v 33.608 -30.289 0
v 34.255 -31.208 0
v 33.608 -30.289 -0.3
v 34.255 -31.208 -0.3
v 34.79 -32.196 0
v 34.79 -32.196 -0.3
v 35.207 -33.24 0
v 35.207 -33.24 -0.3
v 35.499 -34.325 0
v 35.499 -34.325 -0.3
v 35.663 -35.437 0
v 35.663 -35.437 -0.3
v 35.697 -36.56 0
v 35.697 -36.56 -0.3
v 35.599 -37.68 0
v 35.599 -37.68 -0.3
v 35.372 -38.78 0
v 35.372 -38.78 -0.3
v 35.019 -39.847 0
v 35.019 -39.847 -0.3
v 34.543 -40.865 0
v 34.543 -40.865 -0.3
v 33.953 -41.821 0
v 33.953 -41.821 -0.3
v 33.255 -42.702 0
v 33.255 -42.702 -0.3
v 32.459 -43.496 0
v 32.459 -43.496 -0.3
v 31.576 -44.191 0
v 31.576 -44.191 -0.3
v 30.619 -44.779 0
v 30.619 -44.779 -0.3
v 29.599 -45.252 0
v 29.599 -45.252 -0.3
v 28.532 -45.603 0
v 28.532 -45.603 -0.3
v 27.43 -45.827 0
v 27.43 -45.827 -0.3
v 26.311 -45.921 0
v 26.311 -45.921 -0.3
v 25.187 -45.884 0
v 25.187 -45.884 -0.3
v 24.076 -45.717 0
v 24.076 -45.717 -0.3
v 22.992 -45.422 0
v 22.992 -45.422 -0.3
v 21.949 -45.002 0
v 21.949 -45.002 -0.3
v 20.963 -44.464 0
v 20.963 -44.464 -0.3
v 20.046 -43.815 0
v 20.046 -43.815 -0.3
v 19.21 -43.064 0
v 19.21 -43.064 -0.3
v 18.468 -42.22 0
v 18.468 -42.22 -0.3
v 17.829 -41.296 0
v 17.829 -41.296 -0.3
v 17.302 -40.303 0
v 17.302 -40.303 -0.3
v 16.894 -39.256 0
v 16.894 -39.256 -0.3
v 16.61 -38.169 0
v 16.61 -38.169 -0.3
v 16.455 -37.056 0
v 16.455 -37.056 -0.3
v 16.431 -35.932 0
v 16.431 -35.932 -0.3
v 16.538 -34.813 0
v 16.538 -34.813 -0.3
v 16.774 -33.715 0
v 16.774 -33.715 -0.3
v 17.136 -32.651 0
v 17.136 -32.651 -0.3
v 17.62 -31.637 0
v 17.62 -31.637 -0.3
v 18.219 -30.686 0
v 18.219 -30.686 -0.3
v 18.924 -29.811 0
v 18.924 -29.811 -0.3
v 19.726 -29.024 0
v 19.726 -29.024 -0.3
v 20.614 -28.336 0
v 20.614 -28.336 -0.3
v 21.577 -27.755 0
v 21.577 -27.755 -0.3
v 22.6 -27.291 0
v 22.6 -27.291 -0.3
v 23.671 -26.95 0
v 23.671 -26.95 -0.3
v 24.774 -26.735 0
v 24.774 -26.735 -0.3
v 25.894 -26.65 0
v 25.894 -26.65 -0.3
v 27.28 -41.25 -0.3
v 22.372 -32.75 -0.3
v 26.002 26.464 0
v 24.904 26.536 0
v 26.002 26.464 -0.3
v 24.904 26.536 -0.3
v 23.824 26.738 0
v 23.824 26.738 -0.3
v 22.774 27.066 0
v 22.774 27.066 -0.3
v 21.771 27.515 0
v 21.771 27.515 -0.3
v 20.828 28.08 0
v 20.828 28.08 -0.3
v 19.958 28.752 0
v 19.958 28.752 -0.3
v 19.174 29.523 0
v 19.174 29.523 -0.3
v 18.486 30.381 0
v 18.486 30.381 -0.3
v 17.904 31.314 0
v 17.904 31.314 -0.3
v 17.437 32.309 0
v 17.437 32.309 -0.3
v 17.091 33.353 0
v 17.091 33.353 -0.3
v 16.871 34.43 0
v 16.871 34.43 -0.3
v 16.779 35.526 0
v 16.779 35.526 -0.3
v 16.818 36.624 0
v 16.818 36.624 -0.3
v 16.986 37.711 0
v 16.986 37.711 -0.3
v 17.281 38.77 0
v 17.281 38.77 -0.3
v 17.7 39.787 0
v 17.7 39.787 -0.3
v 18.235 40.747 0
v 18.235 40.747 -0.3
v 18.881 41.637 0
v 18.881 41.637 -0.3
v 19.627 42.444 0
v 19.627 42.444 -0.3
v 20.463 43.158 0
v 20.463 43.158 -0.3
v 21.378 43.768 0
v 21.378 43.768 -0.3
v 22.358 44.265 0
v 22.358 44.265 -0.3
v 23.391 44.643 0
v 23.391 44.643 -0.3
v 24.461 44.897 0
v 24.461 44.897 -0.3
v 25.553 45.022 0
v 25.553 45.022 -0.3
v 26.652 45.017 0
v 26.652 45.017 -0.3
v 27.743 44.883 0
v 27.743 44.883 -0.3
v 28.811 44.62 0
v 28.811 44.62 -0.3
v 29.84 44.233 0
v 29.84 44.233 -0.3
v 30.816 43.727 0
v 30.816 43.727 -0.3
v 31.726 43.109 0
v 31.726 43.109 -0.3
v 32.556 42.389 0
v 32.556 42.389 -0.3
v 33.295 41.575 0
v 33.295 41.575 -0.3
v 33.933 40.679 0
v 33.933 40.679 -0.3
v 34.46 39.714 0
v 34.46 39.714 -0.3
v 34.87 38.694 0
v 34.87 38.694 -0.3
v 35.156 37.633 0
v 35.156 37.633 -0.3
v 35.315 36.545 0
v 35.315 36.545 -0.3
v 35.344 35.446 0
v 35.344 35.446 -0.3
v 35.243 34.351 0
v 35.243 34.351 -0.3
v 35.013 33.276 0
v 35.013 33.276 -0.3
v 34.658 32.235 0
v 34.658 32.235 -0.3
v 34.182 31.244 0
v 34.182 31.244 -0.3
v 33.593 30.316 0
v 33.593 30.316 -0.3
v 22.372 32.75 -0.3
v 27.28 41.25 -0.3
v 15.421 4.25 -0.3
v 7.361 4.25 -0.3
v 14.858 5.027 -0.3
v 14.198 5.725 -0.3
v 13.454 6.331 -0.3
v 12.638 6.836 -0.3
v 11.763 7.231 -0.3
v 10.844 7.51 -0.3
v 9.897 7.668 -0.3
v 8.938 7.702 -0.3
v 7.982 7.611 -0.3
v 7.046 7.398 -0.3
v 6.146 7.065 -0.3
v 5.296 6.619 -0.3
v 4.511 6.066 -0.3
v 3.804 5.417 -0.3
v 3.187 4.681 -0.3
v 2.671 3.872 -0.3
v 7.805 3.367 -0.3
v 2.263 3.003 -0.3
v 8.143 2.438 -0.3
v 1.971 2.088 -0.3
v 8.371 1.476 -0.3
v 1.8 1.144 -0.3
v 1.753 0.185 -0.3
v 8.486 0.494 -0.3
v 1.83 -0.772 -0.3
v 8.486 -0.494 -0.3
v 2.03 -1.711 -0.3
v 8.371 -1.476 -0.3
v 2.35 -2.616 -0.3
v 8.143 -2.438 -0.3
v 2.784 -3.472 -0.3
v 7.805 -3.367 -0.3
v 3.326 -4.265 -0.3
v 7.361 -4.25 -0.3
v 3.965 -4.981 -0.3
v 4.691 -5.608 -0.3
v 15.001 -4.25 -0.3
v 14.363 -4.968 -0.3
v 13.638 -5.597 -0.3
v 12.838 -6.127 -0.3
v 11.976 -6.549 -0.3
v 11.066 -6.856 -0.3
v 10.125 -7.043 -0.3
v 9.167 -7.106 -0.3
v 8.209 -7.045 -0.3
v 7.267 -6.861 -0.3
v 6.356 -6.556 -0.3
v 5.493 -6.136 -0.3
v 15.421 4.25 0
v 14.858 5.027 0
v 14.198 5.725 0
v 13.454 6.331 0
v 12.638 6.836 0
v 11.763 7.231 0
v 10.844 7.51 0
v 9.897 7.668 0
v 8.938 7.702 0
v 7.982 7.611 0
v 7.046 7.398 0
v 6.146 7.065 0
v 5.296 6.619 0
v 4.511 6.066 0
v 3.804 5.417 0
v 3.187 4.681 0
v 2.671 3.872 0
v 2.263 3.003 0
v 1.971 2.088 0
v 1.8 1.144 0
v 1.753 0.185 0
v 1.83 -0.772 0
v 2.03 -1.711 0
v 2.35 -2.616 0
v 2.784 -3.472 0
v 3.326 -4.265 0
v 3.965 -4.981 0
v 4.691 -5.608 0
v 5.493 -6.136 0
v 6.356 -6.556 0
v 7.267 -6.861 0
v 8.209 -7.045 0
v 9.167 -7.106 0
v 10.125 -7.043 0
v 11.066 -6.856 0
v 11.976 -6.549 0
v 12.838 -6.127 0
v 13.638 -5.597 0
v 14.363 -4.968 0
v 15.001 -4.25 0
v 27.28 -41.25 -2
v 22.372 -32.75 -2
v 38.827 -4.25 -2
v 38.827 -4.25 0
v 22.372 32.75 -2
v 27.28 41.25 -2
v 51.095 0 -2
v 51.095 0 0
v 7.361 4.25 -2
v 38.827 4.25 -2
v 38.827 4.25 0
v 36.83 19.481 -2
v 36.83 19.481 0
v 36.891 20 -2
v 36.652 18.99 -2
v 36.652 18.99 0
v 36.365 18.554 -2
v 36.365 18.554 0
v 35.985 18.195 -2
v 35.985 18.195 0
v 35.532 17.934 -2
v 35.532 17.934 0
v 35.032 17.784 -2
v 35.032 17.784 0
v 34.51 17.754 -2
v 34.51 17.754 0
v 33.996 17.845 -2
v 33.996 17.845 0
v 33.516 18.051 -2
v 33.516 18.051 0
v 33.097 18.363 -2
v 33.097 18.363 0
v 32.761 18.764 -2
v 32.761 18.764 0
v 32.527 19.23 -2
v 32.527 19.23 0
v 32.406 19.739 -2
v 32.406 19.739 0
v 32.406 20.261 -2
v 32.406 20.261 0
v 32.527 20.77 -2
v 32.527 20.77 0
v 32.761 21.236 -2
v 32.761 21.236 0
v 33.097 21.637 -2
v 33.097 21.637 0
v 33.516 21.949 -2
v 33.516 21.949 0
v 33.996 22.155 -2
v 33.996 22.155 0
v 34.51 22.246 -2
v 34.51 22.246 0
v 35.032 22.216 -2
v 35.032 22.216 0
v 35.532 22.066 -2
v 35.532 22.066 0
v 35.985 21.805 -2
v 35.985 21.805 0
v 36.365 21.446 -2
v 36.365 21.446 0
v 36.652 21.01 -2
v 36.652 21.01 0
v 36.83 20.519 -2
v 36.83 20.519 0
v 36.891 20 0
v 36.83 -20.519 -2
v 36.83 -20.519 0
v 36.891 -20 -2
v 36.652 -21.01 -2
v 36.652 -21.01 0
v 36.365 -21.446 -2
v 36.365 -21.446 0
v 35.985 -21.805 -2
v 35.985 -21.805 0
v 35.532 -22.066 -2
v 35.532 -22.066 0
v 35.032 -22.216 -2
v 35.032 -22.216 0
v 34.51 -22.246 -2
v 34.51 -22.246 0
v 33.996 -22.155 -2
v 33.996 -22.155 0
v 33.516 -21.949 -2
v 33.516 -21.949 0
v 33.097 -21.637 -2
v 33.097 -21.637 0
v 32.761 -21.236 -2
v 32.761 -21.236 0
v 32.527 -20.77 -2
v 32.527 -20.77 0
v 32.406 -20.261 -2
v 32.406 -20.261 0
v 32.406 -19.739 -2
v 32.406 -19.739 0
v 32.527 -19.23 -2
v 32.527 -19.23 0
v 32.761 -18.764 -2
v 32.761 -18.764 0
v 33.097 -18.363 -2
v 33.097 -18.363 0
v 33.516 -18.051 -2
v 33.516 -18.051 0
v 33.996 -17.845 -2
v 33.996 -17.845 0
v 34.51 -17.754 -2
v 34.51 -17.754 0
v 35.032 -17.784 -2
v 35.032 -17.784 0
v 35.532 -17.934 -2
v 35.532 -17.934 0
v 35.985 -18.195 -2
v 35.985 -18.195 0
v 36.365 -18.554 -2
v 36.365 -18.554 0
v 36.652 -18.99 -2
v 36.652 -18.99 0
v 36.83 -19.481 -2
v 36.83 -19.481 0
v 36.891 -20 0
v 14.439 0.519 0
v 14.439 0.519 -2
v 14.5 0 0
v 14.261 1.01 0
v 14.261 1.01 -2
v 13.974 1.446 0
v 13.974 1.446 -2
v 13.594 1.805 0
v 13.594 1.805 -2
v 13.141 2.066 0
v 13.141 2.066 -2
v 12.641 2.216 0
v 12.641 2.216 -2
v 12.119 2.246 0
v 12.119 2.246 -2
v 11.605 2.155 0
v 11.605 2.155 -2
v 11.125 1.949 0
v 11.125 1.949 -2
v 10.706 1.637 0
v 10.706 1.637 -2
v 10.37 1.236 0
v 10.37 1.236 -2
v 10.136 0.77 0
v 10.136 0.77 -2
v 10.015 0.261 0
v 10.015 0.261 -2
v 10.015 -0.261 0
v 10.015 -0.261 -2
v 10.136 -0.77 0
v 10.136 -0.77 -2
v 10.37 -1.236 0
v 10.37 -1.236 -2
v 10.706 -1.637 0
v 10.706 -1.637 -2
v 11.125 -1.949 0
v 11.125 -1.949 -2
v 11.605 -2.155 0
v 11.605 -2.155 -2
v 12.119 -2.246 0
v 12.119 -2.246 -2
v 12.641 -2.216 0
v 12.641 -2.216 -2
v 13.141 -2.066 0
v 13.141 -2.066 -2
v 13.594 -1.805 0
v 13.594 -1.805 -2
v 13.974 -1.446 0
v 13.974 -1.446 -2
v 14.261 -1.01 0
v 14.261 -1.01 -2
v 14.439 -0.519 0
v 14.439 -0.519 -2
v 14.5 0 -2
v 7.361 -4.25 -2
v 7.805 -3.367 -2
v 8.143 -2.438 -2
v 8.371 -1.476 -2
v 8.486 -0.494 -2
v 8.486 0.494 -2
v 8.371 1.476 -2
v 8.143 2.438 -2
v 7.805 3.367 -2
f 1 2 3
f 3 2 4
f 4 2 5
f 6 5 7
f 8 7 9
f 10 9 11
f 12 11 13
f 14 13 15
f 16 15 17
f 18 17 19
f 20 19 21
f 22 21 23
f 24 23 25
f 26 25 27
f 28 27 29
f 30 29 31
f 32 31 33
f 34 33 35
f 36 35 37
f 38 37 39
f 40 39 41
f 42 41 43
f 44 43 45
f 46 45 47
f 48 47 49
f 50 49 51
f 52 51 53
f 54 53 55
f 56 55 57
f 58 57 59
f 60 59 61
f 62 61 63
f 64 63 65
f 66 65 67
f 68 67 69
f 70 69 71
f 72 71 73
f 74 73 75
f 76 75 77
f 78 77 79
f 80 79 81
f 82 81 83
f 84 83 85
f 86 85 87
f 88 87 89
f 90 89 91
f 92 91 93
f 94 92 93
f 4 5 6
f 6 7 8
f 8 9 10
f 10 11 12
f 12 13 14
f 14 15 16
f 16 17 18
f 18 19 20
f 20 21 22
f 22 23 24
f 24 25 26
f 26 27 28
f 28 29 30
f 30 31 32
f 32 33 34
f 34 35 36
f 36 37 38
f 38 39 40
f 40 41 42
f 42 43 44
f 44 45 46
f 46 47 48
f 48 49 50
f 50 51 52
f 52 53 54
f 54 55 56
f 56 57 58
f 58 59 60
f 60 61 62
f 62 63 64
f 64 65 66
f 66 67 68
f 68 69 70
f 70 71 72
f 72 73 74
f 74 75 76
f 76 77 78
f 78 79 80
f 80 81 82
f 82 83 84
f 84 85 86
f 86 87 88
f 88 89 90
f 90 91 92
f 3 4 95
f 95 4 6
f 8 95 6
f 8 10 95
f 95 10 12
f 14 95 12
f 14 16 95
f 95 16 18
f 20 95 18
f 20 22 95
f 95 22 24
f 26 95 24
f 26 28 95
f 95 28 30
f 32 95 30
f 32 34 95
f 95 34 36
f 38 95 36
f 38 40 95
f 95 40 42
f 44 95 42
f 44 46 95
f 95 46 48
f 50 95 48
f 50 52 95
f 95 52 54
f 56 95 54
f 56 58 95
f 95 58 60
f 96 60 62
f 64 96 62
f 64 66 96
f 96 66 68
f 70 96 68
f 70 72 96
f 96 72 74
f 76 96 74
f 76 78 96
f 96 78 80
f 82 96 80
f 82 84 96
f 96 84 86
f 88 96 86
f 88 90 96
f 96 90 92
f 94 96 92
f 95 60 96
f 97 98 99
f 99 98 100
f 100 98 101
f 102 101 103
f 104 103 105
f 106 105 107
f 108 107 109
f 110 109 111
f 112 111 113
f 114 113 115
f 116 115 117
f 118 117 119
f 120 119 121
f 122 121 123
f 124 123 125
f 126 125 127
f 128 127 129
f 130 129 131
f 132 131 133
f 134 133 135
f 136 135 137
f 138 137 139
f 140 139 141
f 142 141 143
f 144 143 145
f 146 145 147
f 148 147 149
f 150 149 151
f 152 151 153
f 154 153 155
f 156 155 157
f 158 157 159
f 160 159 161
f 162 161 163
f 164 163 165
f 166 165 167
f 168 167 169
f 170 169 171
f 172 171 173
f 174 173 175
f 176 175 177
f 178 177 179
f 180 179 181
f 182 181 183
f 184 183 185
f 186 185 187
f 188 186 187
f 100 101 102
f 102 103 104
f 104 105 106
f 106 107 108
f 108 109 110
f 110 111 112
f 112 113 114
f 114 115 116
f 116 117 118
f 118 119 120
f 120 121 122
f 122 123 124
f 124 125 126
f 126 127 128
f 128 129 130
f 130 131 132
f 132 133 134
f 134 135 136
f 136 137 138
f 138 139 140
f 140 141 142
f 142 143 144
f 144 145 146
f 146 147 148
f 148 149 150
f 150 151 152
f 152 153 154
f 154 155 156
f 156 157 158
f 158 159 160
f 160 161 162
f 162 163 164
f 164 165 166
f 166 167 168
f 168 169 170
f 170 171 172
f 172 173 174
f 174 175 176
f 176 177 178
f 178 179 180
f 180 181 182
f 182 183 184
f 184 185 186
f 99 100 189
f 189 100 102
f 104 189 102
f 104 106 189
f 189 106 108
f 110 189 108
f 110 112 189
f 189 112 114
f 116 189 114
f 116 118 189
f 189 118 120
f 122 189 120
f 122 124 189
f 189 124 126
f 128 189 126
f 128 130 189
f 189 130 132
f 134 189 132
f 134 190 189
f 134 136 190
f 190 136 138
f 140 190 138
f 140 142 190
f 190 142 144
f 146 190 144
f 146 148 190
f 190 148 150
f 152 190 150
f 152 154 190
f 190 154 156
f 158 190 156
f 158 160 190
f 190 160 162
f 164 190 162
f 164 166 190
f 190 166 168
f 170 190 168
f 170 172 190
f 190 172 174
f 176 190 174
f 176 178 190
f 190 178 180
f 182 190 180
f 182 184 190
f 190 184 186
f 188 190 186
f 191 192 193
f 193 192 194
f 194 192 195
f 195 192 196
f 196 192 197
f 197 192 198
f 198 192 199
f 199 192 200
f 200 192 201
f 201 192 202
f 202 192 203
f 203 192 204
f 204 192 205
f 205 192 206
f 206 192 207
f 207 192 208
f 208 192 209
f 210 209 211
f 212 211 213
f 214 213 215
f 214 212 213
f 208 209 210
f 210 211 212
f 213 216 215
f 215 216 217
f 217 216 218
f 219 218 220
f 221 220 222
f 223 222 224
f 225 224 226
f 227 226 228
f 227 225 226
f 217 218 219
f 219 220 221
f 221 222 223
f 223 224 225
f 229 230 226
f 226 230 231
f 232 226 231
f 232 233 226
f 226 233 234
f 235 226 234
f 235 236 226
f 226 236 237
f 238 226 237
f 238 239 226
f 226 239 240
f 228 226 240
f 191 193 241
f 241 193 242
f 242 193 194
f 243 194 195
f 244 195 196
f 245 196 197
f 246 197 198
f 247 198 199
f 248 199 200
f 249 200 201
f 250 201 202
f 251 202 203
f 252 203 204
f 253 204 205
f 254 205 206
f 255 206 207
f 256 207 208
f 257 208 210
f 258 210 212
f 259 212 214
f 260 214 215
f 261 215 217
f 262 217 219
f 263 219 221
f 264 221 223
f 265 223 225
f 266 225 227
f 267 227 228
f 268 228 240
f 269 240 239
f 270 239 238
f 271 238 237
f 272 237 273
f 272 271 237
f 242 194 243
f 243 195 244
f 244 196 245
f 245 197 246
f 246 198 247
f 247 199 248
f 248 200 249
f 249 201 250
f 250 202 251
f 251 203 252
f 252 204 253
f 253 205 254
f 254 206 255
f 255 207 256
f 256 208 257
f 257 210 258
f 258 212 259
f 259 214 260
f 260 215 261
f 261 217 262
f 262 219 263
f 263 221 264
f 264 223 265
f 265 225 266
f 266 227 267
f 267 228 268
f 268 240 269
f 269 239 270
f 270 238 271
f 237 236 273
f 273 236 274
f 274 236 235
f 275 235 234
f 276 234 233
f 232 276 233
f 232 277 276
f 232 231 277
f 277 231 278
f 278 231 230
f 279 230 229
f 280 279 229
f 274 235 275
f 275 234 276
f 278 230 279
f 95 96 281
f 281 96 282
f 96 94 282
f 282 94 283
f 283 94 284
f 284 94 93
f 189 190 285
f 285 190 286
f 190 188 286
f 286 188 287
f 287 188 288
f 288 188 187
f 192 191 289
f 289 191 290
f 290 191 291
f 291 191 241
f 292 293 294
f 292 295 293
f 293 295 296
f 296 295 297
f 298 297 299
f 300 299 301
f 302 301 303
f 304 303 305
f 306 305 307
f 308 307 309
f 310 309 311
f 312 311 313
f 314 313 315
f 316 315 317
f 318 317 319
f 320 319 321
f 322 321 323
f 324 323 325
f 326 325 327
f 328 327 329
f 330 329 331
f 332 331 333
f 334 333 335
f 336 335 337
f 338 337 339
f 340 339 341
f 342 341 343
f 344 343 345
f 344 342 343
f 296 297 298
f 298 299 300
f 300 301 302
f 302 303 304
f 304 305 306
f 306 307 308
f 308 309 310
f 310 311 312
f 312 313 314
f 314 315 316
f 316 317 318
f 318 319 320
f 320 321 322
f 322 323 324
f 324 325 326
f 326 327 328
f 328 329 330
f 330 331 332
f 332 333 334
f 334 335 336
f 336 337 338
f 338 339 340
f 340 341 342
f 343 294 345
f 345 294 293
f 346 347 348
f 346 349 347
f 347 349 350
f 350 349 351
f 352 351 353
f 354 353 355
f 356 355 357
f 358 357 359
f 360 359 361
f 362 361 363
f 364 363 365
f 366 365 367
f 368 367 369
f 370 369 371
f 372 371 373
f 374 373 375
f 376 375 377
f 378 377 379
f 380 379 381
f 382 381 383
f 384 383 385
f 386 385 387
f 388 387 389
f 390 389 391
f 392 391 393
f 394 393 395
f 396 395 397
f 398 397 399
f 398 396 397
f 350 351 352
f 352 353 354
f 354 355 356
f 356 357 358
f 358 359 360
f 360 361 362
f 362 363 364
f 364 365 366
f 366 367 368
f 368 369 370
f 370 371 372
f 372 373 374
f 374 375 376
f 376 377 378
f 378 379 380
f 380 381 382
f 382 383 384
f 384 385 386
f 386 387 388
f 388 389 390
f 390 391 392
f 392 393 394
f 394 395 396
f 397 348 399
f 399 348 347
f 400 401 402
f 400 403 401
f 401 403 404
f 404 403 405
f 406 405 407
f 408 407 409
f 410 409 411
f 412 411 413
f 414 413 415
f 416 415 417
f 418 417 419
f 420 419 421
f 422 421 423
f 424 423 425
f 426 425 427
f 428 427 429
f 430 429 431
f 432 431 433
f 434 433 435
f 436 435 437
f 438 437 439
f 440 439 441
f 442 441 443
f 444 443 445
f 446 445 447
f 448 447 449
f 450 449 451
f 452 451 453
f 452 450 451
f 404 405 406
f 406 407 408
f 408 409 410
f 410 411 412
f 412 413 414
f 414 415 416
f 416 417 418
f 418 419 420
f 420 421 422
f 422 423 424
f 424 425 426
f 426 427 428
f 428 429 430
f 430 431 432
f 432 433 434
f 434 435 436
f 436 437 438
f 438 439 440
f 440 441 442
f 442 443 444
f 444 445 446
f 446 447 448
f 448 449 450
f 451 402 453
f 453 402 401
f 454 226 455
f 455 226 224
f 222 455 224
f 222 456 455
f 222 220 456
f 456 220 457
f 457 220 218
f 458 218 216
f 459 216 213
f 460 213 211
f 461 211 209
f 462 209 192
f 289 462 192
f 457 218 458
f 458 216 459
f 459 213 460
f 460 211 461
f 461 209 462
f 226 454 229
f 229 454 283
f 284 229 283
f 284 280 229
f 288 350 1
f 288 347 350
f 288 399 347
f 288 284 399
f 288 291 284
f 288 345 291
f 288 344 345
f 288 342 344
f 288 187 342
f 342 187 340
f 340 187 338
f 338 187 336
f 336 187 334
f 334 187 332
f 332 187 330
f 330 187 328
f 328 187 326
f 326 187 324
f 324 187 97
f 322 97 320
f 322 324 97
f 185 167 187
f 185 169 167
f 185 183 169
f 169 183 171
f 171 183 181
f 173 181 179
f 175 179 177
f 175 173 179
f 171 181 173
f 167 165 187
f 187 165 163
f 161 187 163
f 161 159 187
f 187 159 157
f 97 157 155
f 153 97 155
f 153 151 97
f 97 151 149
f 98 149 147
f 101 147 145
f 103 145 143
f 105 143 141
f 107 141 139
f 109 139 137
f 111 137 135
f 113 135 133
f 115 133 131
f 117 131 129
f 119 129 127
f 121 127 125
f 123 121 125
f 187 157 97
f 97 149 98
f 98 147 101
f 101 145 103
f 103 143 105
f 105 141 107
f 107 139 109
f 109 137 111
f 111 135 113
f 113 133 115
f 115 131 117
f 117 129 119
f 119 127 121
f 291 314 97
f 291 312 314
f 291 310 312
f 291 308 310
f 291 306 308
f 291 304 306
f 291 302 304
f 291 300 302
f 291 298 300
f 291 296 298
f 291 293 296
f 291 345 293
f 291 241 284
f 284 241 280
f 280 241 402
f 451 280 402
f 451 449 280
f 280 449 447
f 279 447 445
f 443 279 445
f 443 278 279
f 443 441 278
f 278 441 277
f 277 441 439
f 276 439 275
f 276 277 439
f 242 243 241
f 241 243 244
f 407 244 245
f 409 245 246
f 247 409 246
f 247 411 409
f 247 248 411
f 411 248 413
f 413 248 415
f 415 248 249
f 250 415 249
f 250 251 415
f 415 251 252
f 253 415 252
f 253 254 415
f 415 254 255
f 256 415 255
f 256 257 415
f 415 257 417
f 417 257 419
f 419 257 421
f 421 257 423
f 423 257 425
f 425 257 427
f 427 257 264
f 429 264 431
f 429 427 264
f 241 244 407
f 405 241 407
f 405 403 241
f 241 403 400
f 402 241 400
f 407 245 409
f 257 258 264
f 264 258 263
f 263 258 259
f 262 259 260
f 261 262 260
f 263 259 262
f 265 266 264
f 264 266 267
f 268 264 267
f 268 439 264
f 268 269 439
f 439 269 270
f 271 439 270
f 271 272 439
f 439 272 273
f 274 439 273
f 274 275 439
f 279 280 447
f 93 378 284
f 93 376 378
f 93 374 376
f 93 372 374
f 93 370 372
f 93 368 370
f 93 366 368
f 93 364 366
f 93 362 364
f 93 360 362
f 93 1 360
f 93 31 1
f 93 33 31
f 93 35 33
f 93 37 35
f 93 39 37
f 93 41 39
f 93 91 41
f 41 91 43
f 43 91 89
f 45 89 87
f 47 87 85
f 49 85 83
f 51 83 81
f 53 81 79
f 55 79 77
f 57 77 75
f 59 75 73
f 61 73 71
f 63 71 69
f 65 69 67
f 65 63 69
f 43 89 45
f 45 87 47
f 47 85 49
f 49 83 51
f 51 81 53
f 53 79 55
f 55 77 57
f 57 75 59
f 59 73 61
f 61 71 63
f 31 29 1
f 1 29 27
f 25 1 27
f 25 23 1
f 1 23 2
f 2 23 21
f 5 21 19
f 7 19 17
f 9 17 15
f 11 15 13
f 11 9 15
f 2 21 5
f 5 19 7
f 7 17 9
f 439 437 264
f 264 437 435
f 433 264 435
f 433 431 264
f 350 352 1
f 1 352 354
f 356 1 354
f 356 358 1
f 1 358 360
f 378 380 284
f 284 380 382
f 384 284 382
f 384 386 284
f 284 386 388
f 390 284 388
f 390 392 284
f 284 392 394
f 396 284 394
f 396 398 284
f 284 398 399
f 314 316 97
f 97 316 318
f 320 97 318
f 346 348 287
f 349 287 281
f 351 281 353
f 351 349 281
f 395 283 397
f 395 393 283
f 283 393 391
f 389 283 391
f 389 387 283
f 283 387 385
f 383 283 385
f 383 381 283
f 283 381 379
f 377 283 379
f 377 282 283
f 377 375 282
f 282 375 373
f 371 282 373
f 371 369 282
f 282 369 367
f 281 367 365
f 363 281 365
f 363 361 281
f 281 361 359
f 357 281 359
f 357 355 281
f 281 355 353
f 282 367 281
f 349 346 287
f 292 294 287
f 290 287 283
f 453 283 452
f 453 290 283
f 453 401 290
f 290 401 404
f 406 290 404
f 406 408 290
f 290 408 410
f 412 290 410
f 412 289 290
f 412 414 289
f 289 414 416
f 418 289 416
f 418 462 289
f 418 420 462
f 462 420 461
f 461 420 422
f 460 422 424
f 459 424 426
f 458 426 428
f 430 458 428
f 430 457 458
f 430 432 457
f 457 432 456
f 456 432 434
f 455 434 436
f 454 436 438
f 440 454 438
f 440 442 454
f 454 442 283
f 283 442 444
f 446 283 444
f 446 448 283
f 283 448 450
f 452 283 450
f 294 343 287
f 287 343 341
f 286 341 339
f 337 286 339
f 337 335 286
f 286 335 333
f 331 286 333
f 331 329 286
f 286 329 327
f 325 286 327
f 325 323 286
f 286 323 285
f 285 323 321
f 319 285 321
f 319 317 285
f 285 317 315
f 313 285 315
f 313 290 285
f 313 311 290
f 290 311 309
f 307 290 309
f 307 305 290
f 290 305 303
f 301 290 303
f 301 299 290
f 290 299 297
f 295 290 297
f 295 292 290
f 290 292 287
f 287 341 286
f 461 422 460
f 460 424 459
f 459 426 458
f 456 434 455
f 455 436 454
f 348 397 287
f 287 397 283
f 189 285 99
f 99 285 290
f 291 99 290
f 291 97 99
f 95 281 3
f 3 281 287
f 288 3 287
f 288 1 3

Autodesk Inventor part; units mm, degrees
ref_plane "YZ Plane" through (0, 0, 0) normal (1, 0, 0) x (0, 1, 0)
ref_plane "XZ Plane" through (0, 0, 0) normal (0, 1, 0) x (-1, 0, 0)
ref_plane "XY Plane" through (0, 0, 0) normal (0, 0, 1) x (1, 0, 0)
sketch "Sketch1" plane through (0, 0, 0) normal (0, 0, 1) x (1, 0, 0)
  circle A0 centre (0, 0) radius 7.5
  line L0 (-21.2869, 0) -> (22.3896, 0) construction
  line L1 (0, 21.9302) -> (0, -69.0741) construction
  line L2 (24.9778, -67) -> (-24.9778, -67) construction
  line L3 (-17.5, -57) -> (17.5, -57)
  line L4 (17.5, -57) -> (17.5, -67)
  line L5 (17.5, -67) -> (-17.5, -67)
  line L6 (-17.5, -67) -> (-17.5, -57)
  line L7 (-37.5278, -67) -> (-18.5, -67)
  line L8 (-18.5, -67) -> (-18.5, -56)
  line L9 (-17.5, -62) -> (17.5, -62) construction
  line L10 (-18.5, -59) -> (-22.5, -59)
  line L11 (-22.5, -59) -> (-22.5, -65)
  line L12 (-22.5, -65) -> (-18.5, -65)
  line L13 (-18.5, -65) -> (-18.5, -59)
  line L14 (-17.5, -60) -> (-21.5, -60)
  line L15 (-21.5, -60) -> (-21.5, -64)
  line L16 (-21.5, -64) -> (-17.5, -64)
  line L17 (-17.5, -64) -> (-17.5, -60)
  line L18 (-18.5, -56) -> (-28.8675, -56)
  line L19 (17.5, -60) -> (21.5, -60)
  line L20 (21.5, -60) -> (21.5, -64)
  line L21 (21.5, -64) -> (17.5, -64)
  line L22 (17.5, -64) -> (17.5, -60)
  line L23 (18.5, -67) -> (18.5, -56)
  line L24 (18.5, -67) -> (37.5278, -67)
  line L25 (18.5, -65) -> (22.5, -65)
  line L26 (22.5, -65) -> (22.5, -59)
  line L27 (22.5, -59) -> (18.5, -59)
  line L28 (18.5, -59) -> (18.5, -65)
  line L29 (18.5, -56) -> (28.8675, -56)
  line L30 (-23.7704, -40) -> (28.6931, -40) construction
  line L31 (-17.1762, -35.75) -> (17.1762, -35.75)
  line L32 (-22.0836, -44.25) -> (22.0836, -44.25)
  circle A1 centre (0, -40) radius 2.25
  line L33 (-7.5, -16) -> (7.5, -16)
  line L34 (7.5, -16) -> (7.5, -21)
  line L35 (7.5, -26) -> (-7.5, -26)
  line L36 (-7.5, -26) -> (-7.5, -24)
  line L37 (7.5, -21) -> (-7.5, -21) construction
  line L38 (-7.5, -18) -> (-3.5, -18)
  line L39 (-3.5, -18) -> (-3.5, -21)
  line L40 (-3.5, -24) -> (-7.5, -24)
  line L41 (-7.5, -24) -> (-7.5, -23)
  line L42 (-8.5, -19) -> (-4.5, -19)
  line L43 (-4.5, -19) -> (-4.5, -23)
  line L44 (-4.5, -23) -> (-8.5, -23)
  line L45 (-8.5, -23) -> (-8.5, -19)
  line L46 (7.5, -18) -> (3.5, -18)
  line L47 (3.5, -18) -> (3.5, -21)
  line L48 (3.5, -24) -> (7.5, -24)
  line L49 (7.5, -24) -> (7.5, -18)
  line L50 (8.5, -19) -> (4.5, -19)
  line L51 (4.5, -19) -> (4.5, -23)
  line L52 (4.5, -23) -> (8.5, -23)
  line L53 (8.5, -23) -> (8.5, -19)
  line L54 (-9.815, -19) -> (-31.1769, -56)
  line L55 (-7.5056, -19) -> (-28.8675, -56)
  line L56 (7.5056, -19) -> (28.8675, -56)
  line L57 (-4.5, -21) -> (-8.5, -21)
  line L58 (4.5, -21) -> (8.5, -21)
  line L59 (-21.5, -62) -> (-17.5, -62)
  line L60 (17.5, -62) -> (21.5, -62)
  line L61 (-22.5, -62) -> (-18.5, -62)
  line L62 (22.5, -62) -> (18.5, -62)
  line L63 (-7.5, -21) -> (-3.5, -21)
  line L64 (3.5, -21) -> (7.5, -21)
  line L65 (-28.8675, -56) -> (-31.1769, -56)
  line L66 (28.8675, -56) -> (31.1769, -56)
  line L67 (-10.8853, -24.8539) -> (-12.6173, -23.8539)
  line L68 (10.8875, -24.8576) -> (12.6195, -23.8576)
  line L69 (7.5, -23) -> (7.5, -24)
  line L70 (-7.5, -23) -> (-7.5, -21)
  line L71 (-7.5, -24) -> (-7.5, -16)
  line L72 (7.5, -24) -> (7.5, -26)
  line L73 (-7.5, -21) -> (-7.5, -18)
  line L74 (-3.5, -21) -> (-3.5, -24)
  line L75 (3.5, -21) -> (3.5, -24)
  line L76 (7.5, -21) -> (7.5, -23)
  line L77 (-18.4752, 0) -> (-9.2376, 16)
  line L78 (-9.2376, 16) -> (9.2376, 16)
  line L79 (9.2376, 16) -> (18.4752, 0)
  line L80 (18.4752, 0) -> (9.2376, -16)
  line L81 (9.2376, -16) -> (-9.2376, -16)
  line L82 (-9.2376, -16) -> (-18.4752, 0)
  line L83 (-77.3649, 0) -> (-38.6825, 67) construction
  line L84 (-38.6825, 67) -> (38.6825, 67) construction
  line L85 (38.6825, 67) -> (77.3649, 0) construction
  line L86 (77.3649, 0) -> (38.6825, -67) construction
  line L87 (38.6825, -67) -> (-38.6825, -67) construction
  line L88 (-38.6825, -67) -> (-77.3649, 0) construction
  line L89 (-9.2376, -16) -> (-38.6825, -67) construction
  line L90 (9.2376, -16) -> (38.6825, -67) construction
  line L91 (0, -16.7974) -> (0, -26) construction
  line L92 (9.815, -19) -> (31.1769, -56)
  line L93 (-8.5, -19) -> (-9.815, -19)
  line L94 (8.5, -19) -> (9.815, -19)
  line L95 (-8.5, -23) -> (-9.815, -23)
  line L96 (8.5, -23) -> (9.815, -23)
  line L97 (-31.1769, -56) -> (-37.5278, -67)
  line L98 (31.1769, -56) -> (37.5278, -67)
  circle A2 centre (12.25, 0) radius 2.25
  circle A3 centre (6.125, 10.6088) radius 2.25
  circle A4 centre (-6.125, 10.6088) radius 2.25
  circle A5 centre (-12.25, 0) radius 2.25
  circle A6 centre (-6.125, -10.6088) radius 2.25
  circle A7 centre (6.125, -10.6088) radius 2.25
  line L99 (22.3723, -32.75) -> (39.5485, -3)
  line L100 (27.2798, -41.25) -> (49.3634, -3)
  circle A8 centre (34.641, -20) radius 2.25
  line L101 (39.5485, 3) -> (22.3723, 32.75)
  line L102 (49.3634, 3) -> (27.2798, 41.25)
  circle A9 centre (34.641, 20) radius 2.25
  line L103 (17.1762, 35.75) -> (-17.1762, 35.75)
  line L104 (22.0836, 44.25) -> (-22.0836, 44.25)
  circle A10 centre (0, 40) radius 2.25
  line L105 (-22.3723, 32.75) -> (-39.5485, 3)
  line L106 (-27.2798, 41.25) -> (-49.3634, 3)
  circle A11 centre (-34.641, 20) radius 2.25
  line L107 (-39.5485, -3) -> (-22.3723, -32.75)
  line L108 (-49.3634, -3) -> (-27.2798, -41.25)
  circle A12 centre (-34.641, -20) radius 2.25
  line L109 (22.3723, -32.75) -> (27.2798, -41.25)
  line L110 (49.3634, -3) -> (51.0955, 0)
  line L111 (49.3634, 3) -> (51.0955, 0)
  line L112 (39.5485, -3) -> (41.2805, 0)
  line L113 (39.5485, 3) -> (41.2805, 0)
  line L114 (7.3612, 4.25) -> (38.8268, 4.25)
  line L115 (7.3612, -4.25) -> (38.8268, -4.25)
  arc A13 (8.5, 0) -> (7.3612, 4.25) centre (0, 0) ccw
  arc A14 (7.3612, -4.25) -> (8.5, 0) centre (0, 0) ccw
  arc A15 (7.3612, 4.25) -> (7.3612, -4.25) centre (0, 0) ccw
  line L116 (22.3723, 32.75) -> (27.2798, 41.25)
  circle A16 centre (26.0626, 35.75) radius 9.2862
  circle A17 centre (26.0626, -36.2861) radius 9.6381
  circle A18 centre (9.1575, 0.2994) radius 7.4055
  point P0 (0, -57)
  point P1 (0, -67)
  point P2 (0, -62)
  point P3 (0, -21)
  dimension "d0" = 15
  dimension "d16" = 10
  dimension "d20" = 6
  dimension "d21" = 4
  dimension "d22" = 4
  dimension "d23" = 1
  dimension "d24" = 1
  dimension "d25" = 35
  dimension "d27" = 3
  dimension "d28" = 4
  dimension "d29" = 1
  dimension "d30" = 6
  dimension "d31" = 4
  dimension "d32" = 1
  dimension "d34" = 3
  dimension "d35" = 27
  dimension "d39" = 4.5
  dimension "d41" = 2
  dimension "d42" = 2
  dimension "d44" = 10
  dimension "d45" = 4
  dimension "d46" = 6
  dimension "d48" = 4
  dimension "d49" = 1
  dimension "d50" = 4
  dimension "d52" = 6
  dimension "d53" = 4
  dimension "d54" = 4
  dimension "d55" = 1
  dimension "d56" = 4
  dimension "d57" = 15
  dimension "d60" = 2
  dimension "d81" = 16
  dimension "d83" = 67
  dimension "d84" = 1
  dimension "d86" = 2
  dimension "d87" = 1
  dimension "d88" = 5
  dimension "d89" = 3
  dimension "d90" = 3
  dimension "d112" = 4.5
  dimension "d113" = 2.5
  dimension "d116" = 360
  dimension "d120" = 360
  dimension "d122" = 2
  dimension "d123" = 2
  dimension "d124" = 1
extrude "Extrusion8" add sketch "Sketch1" against normal blind 2 contours L114 A18 L115 A14 A13 | L114 L79 L80 L115 A18 | L114 L101 L113 L112 L99 L115 L80 L79 | L101 A16 L102 L111 L110 L100 A17 L99 L112 L113 | L101 L116 L102 A16 | A17 L100 L109 L99 picked at (27.7483, 34.7719)
extrude "Extrusion9" add sketch "Sketch1" against normal blind 0.3 contours A0 A18 | A0 A18 A15 A13 A14 | A18 L114 A15 | A15 L115 A18 | L114 A18 L115 A14 A13 | A16 L102 L116 L101 | L101 L116 L102 A16 | A17 L100 L109 L99 | L99 L109 L100 A17 L92 | L92 A17 L56 | L56 L31 A17 | A17 L32 L56 | L56 L32 A17 L31 picked at (5.5176, 0.5972)
equation "\"d20\" = hinge_w"
equation "\"d21\" = hinge_d"
equation "\"d22\" = hinge_w - 2 * hinge_sp"
equation "\"d23\" = hinge_sp"
equation "\"d24\" = sp"
equation "\"d28\" = hinge_w - 2 * hinge_sp"
equation "\"d29\" = sp"
equation "\"d30\" = hinge_w"
equation "\"d31\" = hinge_d"
equation "\"d32\" = hinge_sp"
equation "\"d39\" = screw"
equation "\"d45\" = hinge_d"
equation "\"d46\" = hinge_w"
equation "\"d48\" = hinge_d"
equation "\"d49\" = hinge_sp"
equation "\"d50\" = hinge_w - 2 * hinge_sp"
equation "\"screw\" = 4.5"
equation "\"k\" = 0.4"
equation "\"sp\" = 1"
equation "\"d14\" = sp"
equation "\"d15\" = sp"
equation "\"d19\" = sp"
equation "\"hinge_d\" = 4"
equation "\"hinge_w\" = 6"
equation "\"hinge_sp\" = 1"
properties part number "RobotBase" material "Glass"
